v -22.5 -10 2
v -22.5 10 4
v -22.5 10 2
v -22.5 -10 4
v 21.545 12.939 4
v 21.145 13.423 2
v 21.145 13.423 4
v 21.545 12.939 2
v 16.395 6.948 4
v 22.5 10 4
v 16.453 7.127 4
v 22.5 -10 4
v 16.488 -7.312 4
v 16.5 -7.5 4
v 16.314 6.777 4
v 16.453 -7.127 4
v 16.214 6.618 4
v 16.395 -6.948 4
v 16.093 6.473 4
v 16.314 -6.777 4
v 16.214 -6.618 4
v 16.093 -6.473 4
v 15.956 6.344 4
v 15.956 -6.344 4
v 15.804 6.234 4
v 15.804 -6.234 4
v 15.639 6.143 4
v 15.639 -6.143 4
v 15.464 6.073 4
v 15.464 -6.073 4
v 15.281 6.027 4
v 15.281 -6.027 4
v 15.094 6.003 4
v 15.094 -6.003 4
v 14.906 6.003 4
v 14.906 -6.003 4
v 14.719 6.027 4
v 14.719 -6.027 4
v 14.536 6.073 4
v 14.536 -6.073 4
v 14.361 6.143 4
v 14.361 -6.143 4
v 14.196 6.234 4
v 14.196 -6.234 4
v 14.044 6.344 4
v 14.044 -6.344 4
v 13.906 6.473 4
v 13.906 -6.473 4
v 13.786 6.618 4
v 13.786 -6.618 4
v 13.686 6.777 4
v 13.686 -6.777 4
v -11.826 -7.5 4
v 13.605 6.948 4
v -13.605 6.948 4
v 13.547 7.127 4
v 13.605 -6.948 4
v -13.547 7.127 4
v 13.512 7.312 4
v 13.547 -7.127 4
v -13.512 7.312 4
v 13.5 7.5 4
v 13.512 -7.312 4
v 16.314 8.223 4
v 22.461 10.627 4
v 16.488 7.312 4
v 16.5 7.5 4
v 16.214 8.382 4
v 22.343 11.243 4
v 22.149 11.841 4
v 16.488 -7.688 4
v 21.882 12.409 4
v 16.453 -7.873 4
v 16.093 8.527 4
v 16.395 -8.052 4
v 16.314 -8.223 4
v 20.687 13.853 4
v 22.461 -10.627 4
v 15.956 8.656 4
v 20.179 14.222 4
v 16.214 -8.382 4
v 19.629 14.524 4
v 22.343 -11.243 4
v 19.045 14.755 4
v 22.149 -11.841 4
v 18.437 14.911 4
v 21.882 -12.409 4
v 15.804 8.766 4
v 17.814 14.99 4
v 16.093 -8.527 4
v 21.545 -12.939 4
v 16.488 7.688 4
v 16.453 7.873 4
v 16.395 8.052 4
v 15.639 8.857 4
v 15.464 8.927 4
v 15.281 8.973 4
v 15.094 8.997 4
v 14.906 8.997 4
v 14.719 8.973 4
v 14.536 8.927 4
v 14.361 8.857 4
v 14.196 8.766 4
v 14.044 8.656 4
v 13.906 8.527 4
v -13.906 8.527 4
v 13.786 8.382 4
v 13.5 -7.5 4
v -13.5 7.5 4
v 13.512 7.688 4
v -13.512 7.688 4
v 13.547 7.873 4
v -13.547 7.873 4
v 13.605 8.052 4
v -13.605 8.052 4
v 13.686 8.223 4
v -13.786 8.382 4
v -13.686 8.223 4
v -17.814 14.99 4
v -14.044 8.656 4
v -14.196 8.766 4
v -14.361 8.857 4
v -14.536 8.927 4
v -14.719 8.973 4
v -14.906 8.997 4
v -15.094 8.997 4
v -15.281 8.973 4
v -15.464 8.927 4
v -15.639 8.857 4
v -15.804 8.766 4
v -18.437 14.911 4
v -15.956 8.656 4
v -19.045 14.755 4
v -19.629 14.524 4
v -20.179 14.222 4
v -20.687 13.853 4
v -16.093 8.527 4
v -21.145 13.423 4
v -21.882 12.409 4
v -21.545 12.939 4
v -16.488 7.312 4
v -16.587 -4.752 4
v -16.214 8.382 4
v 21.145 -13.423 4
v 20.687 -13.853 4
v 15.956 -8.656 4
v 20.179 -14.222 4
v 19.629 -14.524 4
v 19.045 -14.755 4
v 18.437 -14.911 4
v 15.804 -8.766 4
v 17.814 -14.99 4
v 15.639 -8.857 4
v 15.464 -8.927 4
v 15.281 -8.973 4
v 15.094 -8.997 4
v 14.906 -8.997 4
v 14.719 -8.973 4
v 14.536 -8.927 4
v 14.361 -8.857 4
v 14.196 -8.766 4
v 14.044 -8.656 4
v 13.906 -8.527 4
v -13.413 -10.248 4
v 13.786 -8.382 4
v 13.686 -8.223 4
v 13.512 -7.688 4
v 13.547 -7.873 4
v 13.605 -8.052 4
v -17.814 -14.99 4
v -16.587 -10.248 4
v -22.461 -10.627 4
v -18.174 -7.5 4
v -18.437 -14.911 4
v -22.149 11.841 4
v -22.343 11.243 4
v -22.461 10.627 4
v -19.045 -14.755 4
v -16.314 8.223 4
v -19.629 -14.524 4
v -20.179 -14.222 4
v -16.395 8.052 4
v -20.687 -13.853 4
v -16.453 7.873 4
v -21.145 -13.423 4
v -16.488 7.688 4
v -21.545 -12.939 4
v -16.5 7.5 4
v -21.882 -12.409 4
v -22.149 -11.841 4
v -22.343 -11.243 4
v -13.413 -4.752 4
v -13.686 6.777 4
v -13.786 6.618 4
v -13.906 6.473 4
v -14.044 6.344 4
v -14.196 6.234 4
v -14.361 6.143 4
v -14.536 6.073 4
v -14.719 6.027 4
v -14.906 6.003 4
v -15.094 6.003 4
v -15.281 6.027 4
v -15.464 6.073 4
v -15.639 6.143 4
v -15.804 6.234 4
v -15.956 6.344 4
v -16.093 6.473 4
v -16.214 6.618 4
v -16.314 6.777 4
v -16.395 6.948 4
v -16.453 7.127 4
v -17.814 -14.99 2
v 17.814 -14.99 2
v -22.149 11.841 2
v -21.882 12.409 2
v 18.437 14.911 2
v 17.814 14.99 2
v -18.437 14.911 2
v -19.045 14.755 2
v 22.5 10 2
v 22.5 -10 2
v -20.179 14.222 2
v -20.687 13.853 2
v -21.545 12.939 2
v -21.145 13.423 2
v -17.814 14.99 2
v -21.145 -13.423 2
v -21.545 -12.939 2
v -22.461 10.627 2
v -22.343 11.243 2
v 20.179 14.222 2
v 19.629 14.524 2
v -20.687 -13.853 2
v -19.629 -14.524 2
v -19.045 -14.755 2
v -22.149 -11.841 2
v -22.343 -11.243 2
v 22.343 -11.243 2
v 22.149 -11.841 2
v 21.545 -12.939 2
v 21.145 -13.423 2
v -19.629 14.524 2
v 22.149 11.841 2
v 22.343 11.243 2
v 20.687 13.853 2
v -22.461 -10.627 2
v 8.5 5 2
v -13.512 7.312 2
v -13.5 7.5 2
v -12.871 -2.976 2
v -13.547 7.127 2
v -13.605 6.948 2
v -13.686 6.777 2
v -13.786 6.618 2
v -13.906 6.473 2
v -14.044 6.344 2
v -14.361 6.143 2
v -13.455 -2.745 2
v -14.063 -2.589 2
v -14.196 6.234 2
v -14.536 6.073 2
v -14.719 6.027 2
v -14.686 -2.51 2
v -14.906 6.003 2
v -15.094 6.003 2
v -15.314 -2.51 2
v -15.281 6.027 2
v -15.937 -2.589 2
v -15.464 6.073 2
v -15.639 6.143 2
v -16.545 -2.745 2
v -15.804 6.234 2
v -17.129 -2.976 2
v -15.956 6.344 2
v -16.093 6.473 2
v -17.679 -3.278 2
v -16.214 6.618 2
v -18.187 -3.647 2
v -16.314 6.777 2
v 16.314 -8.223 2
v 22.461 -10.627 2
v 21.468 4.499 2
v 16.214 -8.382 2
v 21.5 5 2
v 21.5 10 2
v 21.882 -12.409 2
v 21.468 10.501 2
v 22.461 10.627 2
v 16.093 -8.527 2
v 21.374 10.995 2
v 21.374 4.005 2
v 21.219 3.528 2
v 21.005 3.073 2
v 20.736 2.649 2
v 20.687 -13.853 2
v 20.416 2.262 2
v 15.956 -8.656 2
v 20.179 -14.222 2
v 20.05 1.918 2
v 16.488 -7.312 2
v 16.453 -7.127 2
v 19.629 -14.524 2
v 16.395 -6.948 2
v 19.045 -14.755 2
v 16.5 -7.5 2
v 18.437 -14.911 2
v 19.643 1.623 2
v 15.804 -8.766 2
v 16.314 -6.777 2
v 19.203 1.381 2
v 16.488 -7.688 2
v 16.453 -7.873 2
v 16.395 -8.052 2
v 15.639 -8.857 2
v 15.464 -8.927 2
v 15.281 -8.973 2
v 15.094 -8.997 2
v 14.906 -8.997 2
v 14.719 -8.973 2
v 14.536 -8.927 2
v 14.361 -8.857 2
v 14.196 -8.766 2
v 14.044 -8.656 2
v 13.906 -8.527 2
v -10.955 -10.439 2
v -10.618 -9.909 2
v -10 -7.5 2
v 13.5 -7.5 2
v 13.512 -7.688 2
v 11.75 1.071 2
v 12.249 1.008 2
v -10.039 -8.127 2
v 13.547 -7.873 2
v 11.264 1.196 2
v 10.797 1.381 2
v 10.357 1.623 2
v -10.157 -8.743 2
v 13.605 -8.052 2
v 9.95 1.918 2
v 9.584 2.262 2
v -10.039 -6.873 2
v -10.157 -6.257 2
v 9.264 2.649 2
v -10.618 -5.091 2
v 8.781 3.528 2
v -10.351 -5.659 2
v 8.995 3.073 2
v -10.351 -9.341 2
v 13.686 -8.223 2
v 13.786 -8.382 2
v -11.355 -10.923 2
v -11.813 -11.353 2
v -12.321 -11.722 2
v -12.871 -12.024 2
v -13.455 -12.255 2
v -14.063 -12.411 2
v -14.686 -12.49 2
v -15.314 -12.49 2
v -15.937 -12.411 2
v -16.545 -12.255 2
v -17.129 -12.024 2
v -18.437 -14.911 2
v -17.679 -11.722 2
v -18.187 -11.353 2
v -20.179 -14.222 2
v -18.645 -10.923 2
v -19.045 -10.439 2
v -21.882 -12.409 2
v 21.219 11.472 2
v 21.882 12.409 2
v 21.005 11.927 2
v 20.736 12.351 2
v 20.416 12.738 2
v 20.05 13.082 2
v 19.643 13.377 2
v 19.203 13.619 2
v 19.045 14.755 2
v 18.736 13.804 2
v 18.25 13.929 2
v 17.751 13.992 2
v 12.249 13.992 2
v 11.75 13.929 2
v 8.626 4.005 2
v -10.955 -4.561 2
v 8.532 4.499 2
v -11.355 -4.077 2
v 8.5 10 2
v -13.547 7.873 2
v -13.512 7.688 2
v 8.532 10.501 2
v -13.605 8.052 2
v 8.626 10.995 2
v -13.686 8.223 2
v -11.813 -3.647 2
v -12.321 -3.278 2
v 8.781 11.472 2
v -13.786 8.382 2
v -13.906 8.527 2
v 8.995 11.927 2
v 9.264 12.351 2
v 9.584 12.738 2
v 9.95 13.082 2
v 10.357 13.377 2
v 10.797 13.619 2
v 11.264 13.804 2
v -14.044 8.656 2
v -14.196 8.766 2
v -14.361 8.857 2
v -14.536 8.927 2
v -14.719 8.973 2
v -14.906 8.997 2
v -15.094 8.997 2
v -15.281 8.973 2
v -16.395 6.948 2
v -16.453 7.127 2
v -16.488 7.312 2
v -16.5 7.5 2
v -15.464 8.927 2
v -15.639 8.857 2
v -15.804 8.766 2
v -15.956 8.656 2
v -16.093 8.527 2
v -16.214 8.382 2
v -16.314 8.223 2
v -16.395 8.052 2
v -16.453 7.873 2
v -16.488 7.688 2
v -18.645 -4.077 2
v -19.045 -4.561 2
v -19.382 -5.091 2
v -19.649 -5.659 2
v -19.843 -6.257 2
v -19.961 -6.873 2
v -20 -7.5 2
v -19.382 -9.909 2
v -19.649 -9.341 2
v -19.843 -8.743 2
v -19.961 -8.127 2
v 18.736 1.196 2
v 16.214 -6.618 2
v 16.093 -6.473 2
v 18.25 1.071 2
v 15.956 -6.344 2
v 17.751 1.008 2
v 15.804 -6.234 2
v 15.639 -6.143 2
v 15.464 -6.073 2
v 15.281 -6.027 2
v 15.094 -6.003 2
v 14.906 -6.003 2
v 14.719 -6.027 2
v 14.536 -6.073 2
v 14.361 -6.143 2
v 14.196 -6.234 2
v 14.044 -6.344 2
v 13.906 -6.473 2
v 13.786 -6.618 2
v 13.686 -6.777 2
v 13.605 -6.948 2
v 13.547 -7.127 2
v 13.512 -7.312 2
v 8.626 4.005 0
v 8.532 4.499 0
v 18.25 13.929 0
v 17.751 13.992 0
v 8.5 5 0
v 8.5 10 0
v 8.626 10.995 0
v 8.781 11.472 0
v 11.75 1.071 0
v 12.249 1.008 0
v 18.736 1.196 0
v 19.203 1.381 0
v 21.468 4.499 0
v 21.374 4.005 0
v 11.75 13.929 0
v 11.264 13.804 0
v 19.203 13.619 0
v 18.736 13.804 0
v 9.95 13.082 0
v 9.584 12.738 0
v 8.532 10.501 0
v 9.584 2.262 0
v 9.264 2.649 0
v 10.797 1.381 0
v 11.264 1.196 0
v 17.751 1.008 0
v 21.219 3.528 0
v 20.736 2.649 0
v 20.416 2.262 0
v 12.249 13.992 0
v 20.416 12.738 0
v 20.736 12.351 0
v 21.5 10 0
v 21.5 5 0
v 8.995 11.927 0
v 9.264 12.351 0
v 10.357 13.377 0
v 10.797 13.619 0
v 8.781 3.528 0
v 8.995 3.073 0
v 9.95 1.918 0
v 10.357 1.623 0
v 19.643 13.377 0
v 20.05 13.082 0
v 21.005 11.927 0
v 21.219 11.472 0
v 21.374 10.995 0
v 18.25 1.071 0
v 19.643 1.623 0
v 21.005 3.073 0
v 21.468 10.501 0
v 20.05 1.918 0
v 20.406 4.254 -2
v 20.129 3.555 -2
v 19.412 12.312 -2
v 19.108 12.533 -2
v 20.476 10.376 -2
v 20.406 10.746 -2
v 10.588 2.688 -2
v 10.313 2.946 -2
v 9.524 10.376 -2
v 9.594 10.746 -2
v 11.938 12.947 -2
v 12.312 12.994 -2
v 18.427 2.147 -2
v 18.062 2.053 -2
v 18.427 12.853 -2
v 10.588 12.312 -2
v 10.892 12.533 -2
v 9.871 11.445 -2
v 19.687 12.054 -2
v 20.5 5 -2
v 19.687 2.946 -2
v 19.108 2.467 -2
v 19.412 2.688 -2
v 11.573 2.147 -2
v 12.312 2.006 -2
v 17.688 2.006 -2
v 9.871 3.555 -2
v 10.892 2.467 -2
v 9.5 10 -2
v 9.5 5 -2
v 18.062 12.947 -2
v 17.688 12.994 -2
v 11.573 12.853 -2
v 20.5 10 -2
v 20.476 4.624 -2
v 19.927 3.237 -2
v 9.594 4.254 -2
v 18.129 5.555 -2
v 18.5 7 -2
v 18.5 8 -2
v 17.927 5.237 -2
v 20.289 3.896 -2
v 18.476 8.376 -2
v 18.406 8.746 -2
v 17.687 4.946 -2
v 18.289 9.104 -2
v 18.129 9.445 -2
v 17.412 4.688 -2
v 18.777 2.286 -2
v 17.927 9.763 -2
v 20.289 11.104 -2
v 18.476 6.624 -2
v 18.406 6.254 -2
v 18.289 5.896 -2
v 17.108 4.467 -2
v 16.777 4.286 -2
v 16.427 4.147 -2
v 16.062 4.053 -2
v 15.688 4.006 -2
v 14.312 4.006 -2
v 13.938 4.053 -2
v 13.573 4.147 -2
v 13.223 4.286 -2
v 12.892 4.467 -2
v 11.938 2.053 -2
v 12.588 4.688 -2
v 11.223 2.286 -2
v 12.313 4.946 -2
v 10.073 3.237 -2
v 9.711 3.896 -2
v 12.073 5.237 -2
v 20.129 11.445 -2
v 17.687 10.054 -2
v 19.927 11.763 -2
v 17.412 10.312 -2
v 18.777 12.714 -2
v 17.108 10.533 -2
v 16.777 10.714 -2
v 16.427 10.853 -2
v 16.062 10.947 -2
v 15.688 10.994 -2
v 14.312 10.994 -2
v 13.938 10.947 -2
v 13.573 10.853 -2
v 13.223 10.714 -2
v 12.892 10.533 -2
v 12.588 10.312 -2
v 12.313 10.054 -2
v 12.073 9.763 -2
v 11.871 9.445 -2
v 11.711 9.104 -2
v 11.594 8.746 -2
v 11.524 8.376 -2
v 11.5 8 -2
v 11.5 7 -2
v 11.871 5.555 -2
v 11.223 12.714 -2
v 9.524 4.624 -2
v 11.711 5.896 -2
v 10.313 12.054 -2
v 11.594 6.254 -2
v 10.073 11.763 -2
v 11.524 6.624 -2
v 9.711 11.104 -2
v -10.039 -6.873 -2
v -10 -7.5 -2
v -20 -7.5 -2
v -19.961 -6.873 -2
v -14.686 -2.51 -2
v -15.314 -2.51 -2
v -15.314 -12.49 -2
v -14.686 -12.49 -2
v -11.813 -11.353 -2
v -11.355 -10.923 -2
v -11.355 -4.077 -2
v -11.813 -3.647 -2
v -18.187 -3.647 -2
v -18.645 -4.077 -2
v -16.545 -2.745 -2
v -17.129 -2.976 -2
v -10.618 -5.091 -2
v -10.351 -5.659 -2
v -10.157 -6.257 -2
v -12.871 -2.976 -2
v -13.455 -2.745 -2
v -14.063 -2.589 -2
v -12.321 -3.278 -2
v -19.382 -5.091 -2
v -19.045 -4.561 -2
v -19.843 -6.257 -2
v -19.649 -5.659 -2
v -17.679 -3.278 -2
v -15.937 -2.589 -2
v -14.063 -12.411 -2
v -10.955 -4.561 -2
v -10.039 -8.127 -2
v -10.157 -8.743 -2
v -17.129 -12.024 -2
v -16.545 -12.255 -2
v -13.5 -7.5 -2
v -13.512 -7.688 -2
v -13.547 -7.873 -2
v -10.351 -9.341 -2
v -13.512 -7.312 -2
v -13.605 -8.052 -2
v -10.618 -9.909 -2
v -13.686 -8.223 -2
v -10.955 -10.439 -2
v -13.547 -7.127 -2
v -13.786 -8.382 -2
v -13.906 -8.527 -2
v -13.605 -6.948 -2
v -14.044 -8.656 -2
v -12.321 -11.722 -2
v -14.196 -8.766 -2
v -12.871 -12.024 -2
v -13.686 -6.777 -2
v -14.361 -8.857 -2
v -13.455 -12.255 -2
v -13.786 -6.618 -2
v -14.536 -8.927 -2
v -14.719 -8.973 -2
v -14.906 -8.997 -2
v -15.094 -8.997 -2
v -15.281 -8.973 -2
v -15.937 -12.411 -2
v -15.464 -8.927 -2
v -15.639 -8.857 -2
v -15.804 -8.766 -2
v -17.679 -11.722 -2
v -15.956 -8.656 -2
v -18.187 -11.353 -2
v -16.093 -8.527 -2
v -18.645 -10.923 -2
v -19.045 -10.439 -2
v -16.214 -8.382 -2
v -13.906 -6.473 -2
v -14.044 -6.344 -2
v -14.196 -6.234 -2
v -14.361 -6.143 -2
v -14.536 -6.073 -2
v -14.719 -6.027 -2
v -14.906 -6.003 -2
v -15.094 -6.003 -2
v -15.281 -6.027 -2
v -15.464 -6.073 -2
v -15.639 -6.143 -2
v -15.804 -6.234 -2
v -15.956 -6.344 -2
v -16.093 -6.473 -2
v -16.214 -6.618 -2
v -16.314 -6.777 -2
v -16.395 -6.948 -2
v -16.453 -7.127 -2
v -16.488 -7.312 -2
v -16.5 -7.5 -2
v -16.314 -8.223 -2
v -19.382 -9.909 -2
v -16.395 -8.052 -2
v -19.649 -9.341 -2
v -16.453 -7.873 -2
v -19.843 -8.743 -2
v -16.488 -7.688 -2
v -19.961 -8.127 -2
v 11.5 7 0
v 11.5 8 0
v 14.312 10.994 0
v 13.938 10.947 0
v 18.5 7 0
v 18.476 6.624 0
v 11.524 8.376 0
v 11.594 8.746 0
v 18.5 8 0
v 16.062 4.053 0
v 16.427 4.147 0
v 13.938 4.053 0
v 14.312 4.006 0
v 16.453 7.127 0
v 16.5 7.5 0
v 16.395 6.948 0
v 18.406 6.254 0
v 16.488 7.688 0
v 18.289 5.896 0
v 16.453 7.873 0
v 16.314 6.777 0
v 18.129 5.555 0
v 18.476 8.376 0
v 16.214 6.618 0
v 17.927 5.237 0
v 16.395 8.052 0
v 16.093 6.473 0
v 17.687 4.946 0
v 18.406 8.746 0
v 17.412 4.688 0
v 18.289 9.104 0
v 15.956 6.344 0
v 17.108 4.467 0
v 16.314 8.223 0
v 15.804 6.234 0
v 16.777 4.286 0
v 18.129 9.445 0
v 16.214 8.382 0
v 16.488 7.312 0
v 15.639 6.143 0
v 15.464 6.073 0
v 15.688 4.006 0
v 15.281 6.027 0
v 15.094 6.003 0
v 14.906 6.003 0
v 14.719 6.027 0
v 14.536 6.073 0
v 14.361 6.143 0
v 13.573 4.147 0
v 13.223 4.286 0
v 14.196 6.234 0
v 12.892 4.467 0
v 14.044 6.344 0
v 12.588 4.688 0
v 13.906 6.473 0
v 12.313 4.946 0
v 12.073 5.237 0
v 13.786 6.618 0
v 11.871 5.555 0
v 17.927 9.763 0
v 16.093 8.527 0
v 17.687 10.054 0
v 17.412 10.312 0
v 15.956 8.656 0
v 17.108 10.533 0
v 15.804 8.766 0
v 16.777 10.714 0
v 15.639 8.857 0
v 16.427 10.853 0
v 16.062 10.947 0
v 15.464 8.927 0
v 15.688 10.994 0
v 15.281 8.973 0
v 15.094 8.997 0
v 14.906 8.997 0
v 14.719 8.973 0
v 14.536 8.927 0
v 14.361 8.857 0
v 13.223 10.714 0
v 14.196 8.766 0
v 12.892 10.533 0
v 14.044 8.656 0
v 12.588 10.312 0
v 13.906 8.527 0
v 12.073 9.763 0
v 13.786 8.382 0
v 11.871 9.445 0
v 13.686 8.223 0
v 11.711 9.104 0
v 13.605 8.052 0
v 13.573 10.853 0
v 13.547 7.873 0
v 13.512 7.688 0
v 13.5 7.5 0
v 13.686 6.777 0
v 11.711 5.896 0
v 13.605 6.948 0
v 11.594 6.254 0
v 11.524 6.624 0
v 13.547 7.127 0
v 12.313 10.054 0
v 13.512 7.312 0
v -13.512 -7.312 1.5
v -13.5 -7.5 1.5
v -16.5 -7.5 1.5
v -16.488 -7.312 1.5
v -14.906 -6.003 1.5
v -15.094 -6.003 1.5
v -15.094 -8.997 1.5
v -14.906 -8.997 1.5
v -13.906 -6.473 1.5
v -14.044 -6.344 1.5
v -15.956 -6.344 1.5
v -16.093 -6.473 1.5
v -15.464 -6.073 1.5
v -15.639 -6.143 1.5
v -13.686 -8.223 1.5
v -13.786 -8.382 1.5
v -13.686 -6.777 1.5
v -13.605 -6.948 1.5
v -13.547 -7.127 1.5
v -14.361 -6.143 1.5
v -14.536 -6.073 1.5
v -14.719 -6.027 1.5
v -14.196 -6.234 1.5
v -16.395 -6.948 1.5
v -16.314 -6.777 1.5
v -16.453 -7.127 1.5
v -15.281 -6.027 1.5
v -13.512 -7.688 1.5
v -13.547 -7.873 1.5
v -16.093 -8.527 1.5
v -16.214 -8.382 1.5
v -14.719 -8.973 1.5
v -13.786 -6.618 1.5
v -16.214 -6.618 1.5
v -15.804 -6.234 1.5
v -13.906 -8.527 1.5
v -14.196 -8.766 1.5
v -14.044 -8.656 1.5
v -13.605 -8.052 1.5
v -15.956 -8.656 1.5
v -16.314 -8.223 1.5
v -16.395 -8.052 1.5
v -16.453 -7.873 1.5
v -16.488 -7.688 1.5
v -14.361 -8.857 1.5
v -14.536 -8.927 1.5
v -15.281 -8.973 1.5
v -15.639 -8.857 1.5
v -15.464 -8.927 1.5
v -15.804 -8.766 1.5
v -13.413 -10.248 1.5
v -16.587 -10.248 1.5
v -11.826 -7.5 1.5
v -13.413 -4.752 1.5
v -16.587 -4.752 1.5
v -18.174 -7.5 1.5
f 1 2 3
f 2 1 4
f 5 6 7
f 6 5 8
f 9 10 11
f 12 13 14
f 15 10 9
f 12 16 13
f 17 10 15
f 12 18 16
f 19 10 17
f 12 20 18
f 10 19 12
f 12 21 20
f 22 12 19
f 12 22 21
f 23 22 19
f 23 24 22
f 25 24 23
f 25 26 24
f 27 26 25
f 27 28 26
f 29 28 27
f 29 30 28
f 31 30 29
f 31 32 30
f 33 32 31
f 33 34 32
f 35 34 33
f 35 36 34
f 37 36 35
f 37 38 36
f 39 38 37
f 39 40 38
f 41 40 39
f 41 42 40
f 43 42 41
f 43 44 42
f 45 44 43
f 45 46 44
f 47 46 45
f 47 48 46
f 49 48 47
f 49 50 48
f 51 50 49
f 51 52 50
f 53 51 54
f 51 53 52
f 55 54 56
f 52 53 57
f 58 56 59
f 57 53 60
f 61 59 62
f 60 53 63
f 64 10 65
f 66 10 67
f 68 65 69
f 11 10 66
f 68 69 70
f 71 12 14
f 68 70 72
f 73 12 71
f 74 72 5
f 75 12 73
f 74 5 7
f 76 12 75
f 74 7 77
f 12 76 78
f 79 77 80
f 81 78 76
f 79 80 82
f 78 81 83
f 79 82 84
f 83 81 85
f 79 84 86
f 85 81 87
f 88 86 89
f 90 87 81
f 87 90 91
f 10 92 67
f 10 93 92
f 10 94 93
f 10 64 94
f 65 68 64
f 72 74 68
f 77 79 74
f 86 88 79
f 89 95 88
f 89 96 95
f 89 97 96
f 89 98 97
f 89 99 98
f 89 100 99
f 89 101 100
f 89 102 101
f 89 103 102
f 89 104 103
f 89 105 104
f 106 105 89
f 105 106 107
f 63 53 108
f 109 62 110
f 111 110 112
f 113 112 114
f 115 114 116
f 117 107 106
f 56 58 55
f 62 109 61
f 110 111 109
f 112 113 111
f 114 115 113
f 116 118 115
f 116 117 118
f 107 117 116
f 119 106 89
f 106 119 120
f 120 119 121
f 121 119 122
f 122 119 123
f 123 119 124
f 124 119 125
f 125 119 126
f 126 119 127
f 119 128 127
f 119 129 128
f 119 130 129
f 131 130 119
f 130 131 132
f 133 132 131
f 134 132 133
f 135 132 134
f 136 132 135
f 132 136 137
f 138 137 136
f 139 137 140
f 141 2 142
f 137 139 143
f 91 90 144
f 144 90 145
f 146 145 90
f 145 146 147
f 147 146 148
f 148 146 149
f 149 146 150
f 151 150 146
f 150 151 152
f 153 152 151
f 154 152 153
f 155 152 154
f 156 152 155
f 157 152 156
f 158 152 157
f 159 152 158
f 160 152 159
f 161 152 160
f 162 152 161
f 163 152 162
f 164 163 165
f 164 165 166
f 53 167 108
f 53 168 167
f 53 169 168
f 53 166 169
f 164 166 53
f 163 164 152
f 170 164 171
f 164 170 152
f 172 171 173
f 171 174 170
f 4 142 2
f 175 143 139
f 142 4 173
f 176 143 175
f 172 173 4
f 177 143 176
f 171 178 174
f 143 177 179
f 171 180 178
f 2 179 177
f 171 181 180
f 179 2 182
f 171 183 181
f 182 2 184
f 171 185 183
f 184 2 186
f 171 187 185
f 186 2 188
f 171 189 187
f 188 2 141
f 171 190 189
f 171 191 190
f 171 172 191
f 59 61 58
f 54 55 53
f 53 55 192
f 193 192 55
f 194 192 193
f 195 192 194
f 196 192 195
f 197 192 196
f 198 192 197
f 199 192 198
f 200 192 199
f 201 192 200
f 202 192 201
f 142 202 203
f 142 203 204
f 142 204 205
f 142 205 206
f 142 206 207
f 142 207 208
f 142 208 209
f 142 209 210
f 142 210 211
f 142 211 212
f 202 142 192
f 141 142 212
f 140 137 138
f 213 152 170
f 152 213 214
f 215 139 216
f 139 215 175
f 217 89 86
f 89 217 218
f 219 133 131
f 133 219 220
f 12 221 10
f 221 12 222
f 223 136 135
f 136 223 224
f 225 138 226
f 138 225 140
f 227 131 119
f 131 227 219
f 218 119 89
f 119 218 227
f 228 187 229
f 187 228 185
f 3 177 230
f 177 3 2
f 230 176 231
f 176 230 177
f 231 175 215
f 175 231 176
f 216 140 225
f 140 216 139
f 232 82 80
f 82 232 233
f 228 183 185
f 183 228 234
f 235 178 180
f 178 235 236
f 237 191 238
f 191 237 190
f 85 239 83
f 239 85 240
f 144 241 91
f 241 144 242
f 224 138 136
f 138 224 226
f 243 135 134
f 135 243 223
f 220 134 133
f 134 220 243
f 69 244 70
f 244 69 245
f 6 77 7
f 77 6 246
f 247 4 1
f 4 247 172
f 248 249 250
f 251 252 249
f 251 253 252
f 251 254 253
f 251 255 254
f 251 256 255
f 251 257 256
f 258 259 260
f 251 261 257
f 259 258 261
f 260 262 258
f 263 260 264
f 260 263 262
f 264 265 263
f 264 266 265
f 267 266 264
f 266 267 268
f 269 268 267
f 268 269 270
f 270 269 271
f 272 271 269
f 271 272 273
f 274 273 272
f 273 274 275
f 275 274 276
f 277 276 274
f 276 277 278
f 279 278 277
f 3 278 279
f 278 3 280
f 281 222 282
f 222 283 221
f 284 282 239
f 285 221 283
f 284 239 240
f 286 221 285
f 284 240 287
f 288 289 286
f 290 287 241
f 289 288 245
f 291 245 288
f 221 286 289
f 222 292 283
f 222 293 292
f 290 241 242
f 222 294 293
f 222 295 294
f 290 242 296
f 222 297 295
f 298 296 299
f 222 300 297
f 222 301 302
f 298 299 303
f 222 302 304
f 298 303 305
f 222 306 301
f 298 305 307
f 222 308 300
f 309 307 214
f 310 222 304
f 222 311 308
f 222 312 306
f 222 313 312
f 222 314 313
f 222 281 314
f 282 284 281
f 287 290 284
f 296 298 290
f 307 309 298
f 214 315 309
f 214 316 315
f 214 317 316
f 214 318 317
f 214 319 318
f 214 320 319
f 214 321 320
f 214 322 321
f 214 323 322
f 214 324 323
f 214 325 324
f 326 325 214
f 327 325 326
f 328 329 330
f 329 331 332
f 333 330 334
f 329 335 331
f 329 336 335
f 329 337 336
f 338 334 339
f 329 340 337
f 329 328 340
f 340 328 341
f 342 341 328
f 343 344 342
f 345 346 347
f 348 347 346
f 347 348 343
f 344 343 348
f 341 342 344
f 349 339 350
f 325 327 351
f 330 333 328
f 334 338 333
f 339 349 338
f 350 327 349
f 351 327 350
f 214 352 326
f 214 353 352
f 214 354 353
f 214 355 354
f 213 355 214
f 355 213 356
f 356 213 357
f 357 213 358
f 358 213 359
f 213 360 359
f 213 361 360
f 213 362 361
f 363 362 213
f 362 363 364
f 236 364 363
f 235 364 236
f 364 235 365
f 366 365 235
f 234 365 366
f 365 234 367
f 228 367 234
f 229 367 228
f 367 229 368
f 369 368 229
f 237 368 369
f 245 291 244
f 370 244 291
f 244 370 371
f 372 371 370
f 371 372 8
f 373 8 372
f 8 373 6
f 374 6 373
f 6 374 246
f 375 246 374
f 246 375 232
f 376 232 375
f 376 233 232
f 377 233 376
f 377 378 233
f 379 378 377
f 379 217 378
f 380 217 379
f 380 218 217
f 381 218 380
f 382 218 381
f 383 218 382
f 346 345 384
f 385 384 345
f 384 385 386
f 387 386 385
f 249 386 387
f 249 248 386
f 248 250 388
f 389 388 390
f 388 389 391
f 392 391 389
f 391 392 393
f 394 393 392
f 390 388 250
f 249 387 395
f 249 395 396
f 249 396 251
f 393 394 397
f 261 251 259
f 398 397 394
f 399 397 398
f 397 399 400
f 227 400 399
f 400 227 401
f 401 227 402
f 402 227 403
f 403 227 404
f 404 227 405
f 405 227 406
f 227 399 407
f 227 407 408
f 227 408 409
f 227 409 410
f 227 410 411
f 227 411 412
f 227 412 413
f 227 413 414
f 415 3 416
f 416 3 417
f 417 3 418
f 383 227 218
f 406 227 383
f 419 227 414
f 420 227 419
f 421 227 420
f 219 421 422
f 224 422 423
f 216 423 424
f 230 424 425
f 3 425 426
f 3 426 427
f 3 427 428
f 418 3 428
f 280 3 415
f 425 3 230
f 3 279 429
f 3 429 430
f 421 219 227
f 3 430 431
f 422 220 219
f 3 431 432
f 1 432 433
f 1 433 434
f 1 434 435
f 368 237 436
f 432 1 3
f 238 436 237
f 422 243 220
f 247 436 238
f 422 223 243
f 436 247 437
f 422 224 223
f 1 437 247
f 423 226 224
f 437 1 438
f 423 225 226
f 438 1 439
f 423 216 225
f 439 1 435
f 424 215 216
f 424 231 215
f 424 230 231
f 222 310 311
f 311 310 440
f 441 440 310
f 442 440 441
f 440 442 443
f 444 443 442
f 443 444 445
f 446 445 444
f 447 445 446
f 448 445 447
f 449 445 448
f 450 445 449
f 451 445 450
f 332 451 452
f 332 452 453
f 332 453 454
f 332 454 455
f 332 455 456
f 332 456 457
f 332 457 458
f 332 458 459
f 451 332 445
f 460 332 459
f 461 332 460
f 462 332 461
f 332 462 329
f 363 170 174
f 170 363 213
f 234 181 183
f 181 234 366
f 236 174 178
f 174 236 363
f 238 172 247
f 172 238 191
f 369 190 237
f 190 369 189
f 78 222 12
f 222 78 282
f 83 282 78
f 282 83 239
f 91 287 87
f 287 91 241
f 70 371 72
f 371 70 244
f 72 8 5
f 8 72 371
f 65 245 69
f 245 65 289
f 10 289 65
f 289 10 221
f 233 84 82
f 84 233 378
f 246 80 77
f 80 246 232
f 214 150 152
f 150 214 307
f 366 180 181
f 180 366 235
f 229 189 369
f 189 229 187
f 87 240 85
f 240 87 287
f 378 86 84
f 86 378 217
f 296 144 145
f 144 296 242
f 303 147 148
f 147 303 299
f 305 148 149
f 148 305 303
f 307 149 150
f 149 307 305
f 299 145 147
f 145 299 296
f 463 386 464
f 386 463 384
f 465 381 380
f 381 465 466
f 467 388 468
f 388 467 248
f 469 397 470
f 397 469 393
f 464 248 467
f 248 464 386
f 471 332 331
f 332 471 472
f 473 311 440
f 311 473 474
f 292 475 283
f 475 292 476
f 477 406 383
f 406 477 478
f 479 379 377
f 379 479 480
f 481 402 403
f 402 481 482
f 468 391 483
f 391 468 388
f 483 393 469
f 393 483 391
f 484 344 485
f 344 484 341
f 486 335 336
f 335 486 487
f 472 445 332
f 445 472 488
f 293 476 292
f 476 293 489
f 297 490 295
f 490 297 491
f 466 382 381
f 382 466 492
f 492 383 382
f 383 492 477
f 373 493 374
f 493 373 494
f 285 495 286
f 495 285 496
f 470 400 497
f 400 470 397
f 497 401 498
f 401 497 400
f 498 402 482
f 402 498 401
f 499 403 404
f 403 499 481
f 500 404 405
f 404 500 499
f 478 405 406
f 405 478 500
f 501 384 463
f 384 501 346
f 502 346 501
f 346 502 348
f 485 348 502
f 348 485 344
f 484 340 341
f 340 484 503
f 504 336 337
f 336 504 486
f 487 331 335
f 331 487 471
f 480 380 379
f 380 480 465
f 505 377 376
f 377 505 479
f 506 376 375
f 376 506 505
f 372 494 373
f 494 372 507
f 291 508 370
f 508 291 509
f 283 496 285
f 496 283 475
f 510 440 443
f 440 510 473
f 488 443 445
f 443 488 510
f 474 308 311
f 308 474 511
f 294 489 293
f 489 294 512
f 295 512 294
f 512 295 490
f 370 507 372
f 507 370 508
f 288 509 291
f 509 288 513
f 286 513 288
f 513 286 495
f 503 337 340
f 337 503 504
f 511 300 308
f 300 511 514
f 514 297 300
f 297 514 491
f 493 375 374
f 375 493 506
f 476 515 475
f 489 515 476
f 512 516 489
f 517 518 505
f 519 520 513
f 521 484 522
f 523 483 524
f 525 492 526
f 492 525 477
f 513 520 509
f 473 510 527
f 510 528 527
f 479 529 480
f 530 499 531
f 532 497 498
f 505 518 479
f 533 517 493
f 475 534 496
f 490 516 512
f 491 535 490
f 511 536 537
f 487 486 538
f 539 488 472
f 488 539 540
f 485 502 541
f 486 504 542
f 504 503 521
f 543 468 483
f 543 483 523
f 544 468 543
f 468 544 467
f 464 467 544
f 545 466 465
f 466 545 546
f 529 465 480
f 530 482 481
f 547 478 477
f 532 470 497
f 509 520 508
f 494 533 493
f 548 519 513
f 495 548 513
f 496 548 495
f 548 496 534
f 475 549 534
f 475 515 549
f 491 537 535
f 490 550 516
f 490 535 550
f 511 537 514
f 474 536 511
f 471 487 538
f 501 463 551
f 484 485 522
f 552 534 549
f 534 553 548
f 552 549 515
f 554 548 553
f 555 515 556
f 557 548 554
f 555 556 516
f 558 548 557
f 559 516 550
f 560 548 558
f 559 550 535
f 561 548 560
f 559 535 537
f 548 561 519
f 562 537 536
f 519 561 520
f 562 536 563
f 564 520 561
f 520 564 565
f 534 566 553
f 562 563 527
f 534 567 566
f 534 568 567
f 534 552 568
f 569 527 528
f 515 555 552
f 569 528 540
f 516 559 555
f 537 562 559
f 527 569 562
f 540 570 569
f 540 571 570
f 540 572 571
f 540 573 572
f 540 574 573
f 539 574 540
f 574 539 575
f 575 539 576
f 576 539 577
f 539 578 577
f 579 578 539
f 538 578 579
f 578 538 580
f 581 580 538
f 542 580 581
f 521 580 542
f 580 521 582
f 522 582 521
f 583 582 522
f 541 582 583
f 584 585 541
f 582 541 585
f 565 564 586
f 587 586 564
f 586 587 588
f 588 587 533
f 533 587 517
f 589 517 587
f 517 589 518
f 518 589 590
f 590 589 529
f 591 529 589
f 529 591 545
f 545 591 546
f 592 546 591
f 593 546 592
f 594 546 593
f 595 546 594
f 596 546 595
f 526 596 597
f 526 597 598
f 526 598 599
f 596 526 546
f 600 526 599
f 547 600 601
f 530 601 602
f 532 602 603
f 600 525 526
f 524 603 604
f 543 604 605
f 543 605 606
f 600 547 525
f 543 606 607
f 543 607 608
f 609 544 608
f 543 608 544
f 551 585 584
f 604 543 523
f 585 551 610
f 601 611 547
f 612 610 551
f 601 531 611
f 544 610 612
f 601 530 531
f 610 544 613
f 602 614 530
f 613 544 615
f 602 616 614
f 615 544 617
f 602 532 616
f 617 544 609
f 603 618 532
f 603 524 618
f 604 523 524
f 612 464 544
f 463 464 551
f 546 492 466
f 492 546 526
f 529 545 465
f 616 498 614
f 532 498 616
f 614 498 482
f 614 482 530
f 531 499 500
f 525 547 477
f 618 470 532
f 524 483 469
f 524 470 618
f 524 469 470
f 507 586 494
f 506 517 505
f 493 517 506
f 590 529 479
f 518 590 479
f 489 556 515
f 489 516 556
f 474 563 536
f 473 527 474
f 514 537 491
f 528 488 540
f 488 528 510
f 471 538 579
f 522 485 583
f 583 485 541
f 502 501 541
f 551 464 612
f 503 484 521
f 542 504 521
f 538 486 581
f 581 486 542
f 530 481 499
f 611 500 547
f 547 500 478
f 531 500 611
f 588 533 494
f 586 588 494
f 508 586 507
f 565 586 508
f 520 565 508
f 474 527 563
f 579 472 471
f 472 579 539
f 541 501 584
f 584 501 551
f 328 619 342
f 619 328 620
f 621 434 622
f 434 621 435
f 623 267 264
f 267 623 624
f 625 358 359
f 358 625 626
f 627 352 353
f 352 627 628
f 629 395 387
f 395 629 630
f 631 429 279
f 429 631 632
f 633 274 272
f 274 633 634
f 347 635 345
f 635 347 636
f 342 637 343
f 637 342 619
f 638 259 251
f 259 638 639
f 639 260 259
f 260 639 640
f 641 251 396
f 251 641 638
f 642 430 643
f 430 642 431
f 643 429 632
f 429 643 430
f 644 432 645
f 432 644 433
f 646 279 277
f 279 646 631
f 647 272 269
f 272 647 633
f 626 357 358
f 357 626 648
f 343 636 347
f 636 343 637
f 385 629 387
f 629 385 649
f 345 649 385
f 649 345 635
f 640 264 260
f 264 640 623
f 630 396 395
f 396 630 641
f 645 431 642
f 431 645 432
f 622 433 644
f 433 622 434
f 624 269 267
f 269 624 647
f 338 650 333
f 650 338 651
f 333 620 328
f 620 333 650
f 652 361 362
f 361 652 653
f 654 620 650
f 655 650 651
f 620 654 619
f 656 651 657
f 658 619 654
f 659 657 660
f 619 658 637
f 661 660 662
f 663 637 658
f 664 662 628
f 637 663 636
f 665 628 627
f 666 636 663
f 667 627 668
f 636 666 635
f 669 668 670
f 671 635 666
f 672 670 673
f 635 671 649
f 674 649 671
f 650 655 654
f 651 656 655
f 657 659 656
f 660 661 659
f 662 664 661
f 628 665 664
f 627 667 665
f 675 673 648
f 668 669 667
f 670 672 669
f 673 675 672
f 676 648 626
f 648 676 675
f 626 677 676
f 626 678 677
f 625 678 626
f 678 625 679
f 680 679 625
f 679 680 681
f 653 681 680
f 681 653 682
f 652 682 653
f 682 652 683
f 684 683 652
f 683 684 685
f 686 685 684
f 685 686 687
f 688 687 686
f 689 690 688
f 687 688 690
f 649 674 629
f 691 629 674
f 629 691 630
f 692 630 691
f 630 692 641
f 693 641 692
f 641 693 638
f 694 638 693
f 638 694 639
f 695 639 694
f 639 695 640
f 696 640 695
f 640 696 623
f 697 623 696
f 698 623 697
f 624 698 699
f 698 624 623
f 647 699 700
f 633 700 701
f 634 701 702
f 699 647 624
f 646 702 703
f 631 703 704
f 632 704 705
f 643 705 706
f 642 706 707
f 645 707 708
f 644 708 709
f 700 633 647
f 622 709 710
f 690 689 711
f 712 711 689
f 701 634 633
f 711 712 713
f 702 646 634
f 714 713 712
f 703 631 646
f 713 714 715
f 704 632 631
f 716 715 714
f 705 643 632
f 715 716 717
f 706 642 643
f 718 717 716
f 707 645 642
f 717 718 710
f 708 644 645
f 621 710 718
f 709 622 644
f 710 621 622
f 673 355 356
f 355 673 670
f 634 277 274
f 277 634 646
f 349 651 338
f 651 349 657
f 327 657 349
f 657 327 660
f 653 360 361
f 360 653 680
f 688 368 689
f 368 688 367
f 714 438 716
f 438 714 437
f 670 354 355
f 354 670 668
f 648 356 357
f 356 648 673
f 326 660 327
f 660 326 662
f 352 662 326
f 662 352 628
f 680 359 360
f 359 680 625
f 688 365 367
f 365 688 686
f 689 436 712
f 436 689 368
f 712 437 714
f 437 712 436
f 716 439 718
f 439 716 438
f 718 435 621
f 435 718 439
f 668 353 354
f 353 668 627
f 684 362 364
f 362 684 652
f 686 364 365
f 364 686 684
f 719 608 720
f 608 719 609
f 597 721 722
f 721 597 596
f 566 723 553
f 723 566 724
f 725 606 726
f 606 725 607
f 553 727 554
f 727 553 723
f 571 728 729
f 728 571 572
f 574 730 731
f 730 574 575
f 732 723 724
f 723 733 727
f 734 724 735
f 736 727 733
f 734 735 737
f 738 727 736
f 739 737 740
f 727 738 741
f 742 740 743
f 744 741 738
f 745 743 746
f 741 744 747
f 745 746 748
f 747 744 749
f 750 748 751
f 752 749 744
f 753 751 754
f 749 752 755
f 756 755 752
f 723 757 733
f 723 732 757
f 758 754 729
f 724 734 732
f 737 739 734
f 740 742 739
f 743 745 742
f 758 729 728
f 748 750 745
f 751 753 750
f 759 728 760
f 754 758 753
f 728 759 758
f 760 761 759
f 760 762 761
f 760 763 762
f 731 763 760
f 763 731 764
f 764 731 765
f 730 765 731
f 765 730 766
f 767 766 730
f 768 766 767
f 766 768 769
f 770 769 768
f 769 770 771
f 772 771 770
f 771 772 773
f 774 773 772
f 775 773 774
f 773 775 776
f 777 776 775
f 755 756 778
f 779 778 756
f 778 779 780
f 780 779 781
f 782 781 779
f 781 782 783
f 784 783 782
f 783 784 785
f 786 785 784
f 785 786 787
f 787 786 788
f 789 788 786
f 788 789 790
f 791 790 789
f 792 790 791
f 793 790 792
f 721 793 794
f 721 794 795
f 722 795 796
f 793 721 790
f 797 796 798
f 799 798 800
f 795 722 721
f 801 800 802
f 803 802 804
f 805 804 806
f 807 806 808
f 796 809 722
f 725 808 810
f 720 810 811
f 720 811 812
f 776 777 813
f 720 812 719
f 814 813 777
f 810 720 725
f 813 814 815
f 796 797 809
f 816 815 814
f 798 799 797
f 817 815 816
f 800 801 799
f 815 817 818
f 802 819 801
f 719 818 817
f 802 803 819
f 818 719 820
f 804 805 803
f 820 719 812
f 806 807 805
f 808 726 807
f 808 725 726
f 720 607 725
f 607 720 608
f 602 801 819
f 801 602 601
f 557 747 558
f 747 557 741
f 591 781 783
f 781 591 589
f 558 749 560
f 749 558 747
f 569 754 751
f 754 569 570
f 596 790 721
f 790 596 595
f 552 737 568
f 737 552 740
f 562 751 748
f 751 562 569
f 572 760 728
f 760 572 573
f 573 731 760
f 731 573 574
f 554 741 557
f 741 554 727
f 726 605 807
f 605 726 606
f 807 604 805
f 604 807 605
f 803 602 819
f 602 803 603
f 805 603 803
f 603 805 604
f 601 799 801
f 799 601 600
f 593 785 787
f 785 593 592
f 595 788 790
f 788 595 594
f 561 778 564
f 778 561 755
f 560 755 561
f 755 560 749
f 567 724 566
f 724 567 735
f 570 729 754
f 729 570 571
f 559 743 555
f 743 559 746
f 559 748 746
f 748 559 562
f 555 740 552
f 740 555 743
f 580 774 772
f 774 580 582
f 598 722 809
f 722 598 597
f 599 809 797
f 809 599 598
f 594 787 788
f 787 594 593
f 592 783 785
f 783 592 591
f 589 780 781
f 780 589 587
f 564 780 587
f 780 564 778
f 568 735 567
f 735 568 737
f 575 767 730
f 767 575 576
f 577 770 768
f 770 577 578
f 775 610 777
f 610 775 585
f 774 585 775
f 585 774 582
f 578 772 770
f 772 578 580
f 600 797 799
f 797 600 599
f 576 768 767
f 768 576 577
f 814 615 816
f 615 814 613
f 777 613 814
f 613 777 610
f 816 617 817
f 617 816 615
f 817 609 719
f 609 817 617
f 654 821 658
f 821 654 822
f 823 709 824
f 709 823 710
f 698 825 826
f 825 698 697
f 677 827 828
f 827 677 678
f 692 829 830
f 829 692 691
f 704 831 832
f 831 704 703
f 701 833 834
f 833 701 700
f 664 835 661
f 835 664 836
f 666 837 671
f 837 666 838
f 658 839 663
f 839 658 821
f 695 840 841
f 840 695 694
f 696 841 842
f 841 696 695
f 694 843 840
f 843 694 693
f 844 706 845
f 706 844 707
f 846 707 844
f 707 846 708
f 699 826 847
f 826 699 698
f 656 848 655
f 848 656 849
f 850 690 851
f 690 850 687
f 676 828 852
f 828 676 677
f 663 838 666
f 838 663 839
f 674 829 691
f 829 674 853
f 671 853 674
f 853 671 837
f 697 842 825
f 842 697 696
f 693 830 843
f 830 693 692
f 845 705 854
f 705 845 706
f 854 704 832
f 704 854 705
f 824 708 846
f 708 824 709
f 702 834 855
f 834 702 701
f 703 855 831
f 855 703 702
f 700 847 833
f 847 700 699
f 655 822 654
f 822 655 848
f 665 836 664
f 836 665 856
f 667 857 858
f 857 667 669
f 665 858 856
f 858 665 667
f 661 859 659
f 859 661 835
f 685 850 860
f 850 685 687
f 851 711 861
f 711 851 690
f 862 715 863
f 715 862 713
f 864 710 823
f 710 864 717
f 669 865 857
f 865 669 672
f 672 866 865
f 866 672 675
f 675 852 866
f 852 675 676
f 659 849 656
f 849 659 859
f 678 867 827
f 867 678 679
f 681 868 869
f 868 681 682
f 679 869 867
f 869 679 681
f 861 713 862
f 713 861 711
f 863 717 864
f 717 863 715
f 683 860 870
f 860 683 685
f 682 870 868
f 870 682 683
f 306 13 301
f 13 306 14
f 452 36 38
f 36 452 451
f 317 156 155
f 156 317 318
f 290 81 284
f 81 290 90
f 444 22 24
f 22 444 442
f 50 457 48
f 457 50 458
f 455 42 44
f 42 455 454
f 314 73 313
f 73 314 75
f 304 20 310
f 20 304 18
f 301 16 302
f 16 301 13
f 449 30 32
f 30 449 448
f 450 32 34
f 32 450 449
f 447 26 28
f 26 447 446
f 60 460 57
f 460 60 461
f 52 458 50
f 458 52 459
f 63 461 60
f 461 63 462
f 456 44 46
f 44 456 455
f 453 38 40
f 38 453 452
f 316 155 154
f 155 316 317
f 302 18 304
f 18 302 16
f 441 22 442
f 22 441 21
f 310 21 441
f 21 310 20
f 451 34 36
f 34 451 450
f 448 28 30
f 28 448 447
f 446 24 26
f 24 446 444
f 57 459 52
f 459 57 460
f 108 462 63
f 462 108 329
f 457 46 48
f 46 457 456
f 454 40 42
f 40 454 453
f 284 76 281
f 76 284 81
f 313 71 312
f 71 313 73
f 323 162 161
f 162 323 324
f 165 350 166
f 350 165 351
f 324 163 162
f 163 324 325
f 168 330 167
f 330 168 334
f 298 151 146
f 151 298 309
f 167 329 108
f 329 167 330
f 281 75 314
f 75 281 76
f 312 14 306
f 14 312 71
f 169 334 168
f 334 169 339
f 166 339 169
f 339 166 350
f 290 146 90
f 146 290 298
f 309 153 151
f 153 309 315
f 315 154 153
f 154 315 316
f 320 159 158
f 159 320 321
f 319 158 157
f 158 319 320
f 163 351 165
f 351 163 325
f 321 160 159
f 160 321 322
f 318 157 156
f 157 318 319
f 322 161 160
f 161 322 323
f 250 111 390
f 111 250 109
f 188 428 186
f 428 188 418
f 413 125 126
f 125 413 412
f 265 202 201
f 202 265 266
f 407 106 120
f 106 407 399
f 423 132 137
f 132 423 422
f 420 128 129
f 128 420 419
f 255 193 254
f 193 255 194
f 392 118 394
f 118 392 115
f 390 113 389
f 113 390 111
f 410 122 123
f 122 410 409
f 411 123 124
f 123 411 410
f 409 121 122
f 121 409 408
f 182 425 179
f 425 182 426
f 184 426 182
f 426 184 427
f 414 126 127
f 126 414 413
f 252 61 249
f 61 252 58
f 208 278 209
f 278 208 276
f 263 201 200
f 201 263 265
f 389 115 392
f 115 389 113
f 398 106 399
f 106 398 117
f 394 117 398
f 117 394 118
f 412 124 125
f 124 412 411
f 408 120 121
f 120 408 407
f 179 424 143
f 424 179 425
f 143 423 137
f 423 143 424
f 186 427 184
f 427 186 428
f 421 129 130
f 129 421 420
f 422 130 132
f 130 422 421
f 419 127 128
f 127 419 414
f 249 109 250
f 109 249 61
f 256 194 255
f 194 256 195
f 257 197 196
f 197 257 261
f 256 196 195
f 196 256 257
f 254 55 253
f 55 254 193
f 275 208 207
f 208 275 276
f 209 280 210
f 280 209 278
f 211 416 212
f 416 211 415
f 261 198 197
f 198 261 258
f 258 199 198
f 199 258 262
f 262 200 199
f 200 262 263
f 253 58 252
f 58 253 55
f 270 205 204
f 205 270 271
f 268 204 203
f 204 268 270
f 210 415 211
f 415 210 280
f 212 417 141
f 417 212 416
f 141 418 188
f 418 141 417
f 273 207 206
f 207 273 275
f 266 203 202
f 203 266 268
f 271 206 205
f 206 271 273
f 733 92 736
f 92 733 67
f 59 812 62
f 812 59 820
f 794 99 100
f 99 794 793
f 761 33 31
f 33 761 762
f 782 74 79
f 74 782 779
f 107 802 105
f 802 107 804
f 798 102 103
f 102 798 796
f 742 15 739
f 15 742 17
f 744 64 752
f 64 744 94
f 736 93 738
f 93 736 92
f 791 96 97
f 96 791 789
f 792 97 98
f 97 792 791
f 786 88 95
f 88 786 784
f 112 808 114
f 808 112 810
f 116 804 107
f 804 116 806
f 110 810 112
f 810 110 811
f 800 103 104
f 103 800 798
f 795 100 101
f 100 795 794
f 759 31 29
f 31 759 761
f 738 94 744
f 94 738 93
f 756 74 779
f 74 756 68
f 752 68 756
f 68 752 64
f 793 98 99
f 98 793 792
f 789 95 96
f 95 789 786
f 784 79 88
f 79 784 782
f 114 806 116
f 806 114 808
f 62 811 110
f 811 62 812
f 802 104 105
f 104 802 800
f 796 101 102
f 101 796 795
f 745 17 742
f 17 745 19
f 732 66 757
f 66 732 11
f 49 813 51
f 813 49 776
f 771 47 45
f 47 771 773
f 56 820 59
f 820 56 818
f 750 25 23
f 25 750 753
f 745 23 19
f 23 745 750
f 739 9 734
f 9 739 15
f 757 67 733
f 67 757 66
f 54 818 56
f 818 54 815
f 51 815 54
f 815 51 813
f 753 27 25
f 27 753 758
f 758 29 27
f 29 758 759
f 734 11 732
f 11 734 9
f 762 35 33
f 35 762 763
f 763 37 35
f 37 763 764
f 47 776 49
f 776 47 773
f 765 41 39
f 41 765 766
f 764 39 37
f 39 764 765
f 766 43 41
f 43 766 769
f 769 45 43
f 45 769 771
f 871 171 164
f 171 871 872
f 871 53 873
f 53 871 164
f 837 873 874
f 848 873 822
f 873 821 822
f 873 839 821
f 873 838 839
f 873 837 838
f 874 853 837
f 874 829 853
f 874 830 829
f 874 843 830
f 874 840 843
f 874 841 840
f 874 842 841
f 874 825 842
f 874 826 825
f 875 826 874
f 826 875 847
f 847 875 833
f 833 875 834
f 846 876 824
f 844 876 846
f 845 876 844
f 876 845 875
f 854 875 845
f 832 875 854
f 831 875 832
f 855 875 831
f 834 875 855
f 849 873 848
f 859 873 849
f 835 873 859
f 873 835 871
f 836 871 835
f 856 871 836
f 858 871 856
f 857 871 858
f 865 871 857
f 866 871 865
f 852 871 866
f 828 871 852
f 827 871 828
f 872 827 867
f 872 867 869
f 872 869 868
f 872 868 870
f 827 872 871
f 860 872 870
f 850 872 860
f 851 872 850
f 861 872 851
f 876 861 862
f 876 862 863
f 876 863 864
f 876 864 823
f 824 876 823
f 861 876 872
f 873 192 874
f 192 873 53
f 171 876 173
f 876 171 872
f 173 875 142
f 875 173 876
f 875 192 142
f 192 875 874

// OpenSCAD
$fn = 50;


difference() {
	union() {
		translate(v = [0, 0, 2]) {
			rotate(a = [0, 0, 0]) {
				hull() {
					translate(v = [-17.5000000000, 10.0000000000, 0]) {
						rotate(a = [0, 0, 0]) {
							translate(v = [0, 0, 0]) {
								rotate(a = [0, 0, 0]) {
									cylinder(h = 2, r = 5);
								}
							}
						}
					}
					translate(v = [17.5000000000, 10.0000000000, 0]) {
						rotate(a = [0, 0, 0]) {
							translate(v = [0, 0, 0]) {
								rotate(a = [0, 0, 0]) {
									cylinder(h = 2, r = 5);
								}
							}
						}
					}
					translate(v = [-17.5000000000, -10.0000000000, 0]) {
						rotate(a = [0, 0, 0]) {
							translate(v = [0, 0, 0]) {
								rotate(a = [0, 0, 0]) {
									cylinder(h = 2, r = 5);
								}
							}
						}
					}
					translate(v = [17.5000000000, -10.0000000000, 0]) {
						rotate(a = [0, 0, 0]) {
							translate(v = [0, 0, 0]) {
								rotate(a = [0, 0, 0]) {
									cylinder(h = 2, r = 5);
								}
							}
						}
					}
				}
			}
		}
		translate(v = [15.0000000000, 7.5000000000, 0]) {
			rotate(a = [0, 0, 0]) {
				hull() {
					translate(v = [-2.5000000000, 2.5000000000, 0]) {
						rotate(a = [0, 0, 0]) {
							cylinder(h = 2, r1 = 4.0000000000, r2 = 4.0000000000);
						}
					}
					translate(v = [2.5000000000, 2.5000000000, 0]) {
						rotate(a = [0, 0, 0]) {
							cylinder(h = 2, r1 = 4.0000000000, r2 = 4.0000000000);
						}
					}
					translate(v = [-2.5000000000, -2.5000000000, 0]) {
						rotate(a = [0, 0, 0]) {
							cylinder(h = 2, r1 = 4.0000000000, r2 = 4.0000000000);
						}
					}
					translate(v = [2.5000000000, -2.5000000000, 0]) {
						rotate(a = [0, 0, 0]) {
							cylinder(h = 2, r1 = 4.0000000000, r2 = 4.0000000000);
						}
					}
				}
			}
		}
		translate(v = [15.0000000000, 7.5000000000, -2]) {
			rotate(a = [0, 180, 0]) {
				hull() {
					translate(v = [-2.5000000000, 2.5000000000, 0]) {
						rotate(a = [0, 180, 0]) {
							cylinder(h = 2, r1 = 3.0000000000, r2 = 4.0000000000);
						}
					}
					translate(v = [2.5000000000, 2.5000000000, 0]) {
						rotate(a = [0, 180, 0]) {
							cylinder(h = 2, r1 = 3.0000000000, r2 = 4.0000000000);
						}
					}
					translate(v = [-2.5000000000, -2.5000000000, 0]) {
						rotate(a = [0, 180, 0]) {
							cylinder(h = 2, r1 = 3.0000000000, r2 = 4.0000000000);
						}
					}
					translate(v = [2.5000000000, -2.5000000000, 0]) {
						rotate(a = [0, 180, 0]) {
							cylinder(h = 2, r1 = 3.0000000000, r2 = 4.0000000000);
						}
					}
				}
			}
		}
		translate(v = [-15.0000000000, -7.5000000000, -2.0000000000]) {
			rotate(a = [0, 0, 0]) {
				cylinder(h = 4, r = 5);
			}
		}
	}
	union() {
		translate(v = [15.0000000000, 7.5000000000, -2]) {
			rotate(a = [0, 0, 0]) {
				hull() {
					translate(v = [-0.5000000000, 0.5000000000, 0]) {
						rotate(a = [0, 0, 0]) {
							translate(v = [0, 0, 0]) {
								rotate(a = [0, 0, 0]) {
									cylinder(h = 2, r = 3.0000000000);
								}
							}
						}
					}
					translate(v = [0.5000000000, 0.5000000000, 0]) {
						rotate(a = [0, 0, 0]) {
							translate(v = [0, 0, 0]) {
								rotate(a = [0, 0, 0]) {
									cylinder(h = 2, r = 3.0000000000);
								}
							}
						}
					}
					translate(v = [-0.5000000000, -0.5000000000, 0]) {
						rotate(a = [0, 0, 0]) {
							translate(v = [0, 0, 0]) {
								rotate(a = [0, 0, 0]) {
									cylinder(h = 2, r = 3.0000000000);
								}
							}
						}
					}
					translate(v = [0.5000000000, -0.5000000000, 0]) {
						rotate(a = [0, 0, 0]) {
							translate(v = [0, 0, 0]) {
								rotate(a = [0, 0, 0]) {
									cylinder(h = 2, r = 3.0000000000);
								}
							}
						}
					}
				}
			}
		}
		translate(v = [-15.0000000000, -7.5000000000, -50]) {
			rotate(a = [0, 0, 0]) {
				cylinder(h = 100, r = 1.5000000000);
			}
		}
		translate(v = [15.0000000000, -7.5000000000, -50]) {
			rotate(a = [0, 0, 0]) {
				cylinder(h = 100, r = 1.5000000000);
			}
		}
		translate(v = [-15.0000000000, 7.5000000000, -50]) {
			rotate(a = [0, 0, 0]) {
				cylinder(h = 100, r = 1.5000000000);
			}
		}
		translate(v = [15.0000000000, 7.5000000000, -50]) {
			rotate(a = [0, 0, 0]) {
				cylinder(h = 100, r = 1.5000000000);
			}
		}
		translate(v = [-15.0000000000, -7.5000000000, 1.5000000000]) {
			rotate(a = [0, 0, 0]) {
				#translate(v = [0, 0, 0]) {
					rotate(a = [0, 0, 0]) {
						linear_extrude(height = 2.5000000000) {
							polygon(points = [[3.1735000000, 0.0000000000], [1.5867500000, 2.7483316189], [-1.5867500000, 2.7483316189], [-3.1735000000, 0.0000000000], [-1.5867500000, -2.7483316189], [1.5867500000, -2.7483316189]]);
						}
					}
				}
			}
		}
	}
}
